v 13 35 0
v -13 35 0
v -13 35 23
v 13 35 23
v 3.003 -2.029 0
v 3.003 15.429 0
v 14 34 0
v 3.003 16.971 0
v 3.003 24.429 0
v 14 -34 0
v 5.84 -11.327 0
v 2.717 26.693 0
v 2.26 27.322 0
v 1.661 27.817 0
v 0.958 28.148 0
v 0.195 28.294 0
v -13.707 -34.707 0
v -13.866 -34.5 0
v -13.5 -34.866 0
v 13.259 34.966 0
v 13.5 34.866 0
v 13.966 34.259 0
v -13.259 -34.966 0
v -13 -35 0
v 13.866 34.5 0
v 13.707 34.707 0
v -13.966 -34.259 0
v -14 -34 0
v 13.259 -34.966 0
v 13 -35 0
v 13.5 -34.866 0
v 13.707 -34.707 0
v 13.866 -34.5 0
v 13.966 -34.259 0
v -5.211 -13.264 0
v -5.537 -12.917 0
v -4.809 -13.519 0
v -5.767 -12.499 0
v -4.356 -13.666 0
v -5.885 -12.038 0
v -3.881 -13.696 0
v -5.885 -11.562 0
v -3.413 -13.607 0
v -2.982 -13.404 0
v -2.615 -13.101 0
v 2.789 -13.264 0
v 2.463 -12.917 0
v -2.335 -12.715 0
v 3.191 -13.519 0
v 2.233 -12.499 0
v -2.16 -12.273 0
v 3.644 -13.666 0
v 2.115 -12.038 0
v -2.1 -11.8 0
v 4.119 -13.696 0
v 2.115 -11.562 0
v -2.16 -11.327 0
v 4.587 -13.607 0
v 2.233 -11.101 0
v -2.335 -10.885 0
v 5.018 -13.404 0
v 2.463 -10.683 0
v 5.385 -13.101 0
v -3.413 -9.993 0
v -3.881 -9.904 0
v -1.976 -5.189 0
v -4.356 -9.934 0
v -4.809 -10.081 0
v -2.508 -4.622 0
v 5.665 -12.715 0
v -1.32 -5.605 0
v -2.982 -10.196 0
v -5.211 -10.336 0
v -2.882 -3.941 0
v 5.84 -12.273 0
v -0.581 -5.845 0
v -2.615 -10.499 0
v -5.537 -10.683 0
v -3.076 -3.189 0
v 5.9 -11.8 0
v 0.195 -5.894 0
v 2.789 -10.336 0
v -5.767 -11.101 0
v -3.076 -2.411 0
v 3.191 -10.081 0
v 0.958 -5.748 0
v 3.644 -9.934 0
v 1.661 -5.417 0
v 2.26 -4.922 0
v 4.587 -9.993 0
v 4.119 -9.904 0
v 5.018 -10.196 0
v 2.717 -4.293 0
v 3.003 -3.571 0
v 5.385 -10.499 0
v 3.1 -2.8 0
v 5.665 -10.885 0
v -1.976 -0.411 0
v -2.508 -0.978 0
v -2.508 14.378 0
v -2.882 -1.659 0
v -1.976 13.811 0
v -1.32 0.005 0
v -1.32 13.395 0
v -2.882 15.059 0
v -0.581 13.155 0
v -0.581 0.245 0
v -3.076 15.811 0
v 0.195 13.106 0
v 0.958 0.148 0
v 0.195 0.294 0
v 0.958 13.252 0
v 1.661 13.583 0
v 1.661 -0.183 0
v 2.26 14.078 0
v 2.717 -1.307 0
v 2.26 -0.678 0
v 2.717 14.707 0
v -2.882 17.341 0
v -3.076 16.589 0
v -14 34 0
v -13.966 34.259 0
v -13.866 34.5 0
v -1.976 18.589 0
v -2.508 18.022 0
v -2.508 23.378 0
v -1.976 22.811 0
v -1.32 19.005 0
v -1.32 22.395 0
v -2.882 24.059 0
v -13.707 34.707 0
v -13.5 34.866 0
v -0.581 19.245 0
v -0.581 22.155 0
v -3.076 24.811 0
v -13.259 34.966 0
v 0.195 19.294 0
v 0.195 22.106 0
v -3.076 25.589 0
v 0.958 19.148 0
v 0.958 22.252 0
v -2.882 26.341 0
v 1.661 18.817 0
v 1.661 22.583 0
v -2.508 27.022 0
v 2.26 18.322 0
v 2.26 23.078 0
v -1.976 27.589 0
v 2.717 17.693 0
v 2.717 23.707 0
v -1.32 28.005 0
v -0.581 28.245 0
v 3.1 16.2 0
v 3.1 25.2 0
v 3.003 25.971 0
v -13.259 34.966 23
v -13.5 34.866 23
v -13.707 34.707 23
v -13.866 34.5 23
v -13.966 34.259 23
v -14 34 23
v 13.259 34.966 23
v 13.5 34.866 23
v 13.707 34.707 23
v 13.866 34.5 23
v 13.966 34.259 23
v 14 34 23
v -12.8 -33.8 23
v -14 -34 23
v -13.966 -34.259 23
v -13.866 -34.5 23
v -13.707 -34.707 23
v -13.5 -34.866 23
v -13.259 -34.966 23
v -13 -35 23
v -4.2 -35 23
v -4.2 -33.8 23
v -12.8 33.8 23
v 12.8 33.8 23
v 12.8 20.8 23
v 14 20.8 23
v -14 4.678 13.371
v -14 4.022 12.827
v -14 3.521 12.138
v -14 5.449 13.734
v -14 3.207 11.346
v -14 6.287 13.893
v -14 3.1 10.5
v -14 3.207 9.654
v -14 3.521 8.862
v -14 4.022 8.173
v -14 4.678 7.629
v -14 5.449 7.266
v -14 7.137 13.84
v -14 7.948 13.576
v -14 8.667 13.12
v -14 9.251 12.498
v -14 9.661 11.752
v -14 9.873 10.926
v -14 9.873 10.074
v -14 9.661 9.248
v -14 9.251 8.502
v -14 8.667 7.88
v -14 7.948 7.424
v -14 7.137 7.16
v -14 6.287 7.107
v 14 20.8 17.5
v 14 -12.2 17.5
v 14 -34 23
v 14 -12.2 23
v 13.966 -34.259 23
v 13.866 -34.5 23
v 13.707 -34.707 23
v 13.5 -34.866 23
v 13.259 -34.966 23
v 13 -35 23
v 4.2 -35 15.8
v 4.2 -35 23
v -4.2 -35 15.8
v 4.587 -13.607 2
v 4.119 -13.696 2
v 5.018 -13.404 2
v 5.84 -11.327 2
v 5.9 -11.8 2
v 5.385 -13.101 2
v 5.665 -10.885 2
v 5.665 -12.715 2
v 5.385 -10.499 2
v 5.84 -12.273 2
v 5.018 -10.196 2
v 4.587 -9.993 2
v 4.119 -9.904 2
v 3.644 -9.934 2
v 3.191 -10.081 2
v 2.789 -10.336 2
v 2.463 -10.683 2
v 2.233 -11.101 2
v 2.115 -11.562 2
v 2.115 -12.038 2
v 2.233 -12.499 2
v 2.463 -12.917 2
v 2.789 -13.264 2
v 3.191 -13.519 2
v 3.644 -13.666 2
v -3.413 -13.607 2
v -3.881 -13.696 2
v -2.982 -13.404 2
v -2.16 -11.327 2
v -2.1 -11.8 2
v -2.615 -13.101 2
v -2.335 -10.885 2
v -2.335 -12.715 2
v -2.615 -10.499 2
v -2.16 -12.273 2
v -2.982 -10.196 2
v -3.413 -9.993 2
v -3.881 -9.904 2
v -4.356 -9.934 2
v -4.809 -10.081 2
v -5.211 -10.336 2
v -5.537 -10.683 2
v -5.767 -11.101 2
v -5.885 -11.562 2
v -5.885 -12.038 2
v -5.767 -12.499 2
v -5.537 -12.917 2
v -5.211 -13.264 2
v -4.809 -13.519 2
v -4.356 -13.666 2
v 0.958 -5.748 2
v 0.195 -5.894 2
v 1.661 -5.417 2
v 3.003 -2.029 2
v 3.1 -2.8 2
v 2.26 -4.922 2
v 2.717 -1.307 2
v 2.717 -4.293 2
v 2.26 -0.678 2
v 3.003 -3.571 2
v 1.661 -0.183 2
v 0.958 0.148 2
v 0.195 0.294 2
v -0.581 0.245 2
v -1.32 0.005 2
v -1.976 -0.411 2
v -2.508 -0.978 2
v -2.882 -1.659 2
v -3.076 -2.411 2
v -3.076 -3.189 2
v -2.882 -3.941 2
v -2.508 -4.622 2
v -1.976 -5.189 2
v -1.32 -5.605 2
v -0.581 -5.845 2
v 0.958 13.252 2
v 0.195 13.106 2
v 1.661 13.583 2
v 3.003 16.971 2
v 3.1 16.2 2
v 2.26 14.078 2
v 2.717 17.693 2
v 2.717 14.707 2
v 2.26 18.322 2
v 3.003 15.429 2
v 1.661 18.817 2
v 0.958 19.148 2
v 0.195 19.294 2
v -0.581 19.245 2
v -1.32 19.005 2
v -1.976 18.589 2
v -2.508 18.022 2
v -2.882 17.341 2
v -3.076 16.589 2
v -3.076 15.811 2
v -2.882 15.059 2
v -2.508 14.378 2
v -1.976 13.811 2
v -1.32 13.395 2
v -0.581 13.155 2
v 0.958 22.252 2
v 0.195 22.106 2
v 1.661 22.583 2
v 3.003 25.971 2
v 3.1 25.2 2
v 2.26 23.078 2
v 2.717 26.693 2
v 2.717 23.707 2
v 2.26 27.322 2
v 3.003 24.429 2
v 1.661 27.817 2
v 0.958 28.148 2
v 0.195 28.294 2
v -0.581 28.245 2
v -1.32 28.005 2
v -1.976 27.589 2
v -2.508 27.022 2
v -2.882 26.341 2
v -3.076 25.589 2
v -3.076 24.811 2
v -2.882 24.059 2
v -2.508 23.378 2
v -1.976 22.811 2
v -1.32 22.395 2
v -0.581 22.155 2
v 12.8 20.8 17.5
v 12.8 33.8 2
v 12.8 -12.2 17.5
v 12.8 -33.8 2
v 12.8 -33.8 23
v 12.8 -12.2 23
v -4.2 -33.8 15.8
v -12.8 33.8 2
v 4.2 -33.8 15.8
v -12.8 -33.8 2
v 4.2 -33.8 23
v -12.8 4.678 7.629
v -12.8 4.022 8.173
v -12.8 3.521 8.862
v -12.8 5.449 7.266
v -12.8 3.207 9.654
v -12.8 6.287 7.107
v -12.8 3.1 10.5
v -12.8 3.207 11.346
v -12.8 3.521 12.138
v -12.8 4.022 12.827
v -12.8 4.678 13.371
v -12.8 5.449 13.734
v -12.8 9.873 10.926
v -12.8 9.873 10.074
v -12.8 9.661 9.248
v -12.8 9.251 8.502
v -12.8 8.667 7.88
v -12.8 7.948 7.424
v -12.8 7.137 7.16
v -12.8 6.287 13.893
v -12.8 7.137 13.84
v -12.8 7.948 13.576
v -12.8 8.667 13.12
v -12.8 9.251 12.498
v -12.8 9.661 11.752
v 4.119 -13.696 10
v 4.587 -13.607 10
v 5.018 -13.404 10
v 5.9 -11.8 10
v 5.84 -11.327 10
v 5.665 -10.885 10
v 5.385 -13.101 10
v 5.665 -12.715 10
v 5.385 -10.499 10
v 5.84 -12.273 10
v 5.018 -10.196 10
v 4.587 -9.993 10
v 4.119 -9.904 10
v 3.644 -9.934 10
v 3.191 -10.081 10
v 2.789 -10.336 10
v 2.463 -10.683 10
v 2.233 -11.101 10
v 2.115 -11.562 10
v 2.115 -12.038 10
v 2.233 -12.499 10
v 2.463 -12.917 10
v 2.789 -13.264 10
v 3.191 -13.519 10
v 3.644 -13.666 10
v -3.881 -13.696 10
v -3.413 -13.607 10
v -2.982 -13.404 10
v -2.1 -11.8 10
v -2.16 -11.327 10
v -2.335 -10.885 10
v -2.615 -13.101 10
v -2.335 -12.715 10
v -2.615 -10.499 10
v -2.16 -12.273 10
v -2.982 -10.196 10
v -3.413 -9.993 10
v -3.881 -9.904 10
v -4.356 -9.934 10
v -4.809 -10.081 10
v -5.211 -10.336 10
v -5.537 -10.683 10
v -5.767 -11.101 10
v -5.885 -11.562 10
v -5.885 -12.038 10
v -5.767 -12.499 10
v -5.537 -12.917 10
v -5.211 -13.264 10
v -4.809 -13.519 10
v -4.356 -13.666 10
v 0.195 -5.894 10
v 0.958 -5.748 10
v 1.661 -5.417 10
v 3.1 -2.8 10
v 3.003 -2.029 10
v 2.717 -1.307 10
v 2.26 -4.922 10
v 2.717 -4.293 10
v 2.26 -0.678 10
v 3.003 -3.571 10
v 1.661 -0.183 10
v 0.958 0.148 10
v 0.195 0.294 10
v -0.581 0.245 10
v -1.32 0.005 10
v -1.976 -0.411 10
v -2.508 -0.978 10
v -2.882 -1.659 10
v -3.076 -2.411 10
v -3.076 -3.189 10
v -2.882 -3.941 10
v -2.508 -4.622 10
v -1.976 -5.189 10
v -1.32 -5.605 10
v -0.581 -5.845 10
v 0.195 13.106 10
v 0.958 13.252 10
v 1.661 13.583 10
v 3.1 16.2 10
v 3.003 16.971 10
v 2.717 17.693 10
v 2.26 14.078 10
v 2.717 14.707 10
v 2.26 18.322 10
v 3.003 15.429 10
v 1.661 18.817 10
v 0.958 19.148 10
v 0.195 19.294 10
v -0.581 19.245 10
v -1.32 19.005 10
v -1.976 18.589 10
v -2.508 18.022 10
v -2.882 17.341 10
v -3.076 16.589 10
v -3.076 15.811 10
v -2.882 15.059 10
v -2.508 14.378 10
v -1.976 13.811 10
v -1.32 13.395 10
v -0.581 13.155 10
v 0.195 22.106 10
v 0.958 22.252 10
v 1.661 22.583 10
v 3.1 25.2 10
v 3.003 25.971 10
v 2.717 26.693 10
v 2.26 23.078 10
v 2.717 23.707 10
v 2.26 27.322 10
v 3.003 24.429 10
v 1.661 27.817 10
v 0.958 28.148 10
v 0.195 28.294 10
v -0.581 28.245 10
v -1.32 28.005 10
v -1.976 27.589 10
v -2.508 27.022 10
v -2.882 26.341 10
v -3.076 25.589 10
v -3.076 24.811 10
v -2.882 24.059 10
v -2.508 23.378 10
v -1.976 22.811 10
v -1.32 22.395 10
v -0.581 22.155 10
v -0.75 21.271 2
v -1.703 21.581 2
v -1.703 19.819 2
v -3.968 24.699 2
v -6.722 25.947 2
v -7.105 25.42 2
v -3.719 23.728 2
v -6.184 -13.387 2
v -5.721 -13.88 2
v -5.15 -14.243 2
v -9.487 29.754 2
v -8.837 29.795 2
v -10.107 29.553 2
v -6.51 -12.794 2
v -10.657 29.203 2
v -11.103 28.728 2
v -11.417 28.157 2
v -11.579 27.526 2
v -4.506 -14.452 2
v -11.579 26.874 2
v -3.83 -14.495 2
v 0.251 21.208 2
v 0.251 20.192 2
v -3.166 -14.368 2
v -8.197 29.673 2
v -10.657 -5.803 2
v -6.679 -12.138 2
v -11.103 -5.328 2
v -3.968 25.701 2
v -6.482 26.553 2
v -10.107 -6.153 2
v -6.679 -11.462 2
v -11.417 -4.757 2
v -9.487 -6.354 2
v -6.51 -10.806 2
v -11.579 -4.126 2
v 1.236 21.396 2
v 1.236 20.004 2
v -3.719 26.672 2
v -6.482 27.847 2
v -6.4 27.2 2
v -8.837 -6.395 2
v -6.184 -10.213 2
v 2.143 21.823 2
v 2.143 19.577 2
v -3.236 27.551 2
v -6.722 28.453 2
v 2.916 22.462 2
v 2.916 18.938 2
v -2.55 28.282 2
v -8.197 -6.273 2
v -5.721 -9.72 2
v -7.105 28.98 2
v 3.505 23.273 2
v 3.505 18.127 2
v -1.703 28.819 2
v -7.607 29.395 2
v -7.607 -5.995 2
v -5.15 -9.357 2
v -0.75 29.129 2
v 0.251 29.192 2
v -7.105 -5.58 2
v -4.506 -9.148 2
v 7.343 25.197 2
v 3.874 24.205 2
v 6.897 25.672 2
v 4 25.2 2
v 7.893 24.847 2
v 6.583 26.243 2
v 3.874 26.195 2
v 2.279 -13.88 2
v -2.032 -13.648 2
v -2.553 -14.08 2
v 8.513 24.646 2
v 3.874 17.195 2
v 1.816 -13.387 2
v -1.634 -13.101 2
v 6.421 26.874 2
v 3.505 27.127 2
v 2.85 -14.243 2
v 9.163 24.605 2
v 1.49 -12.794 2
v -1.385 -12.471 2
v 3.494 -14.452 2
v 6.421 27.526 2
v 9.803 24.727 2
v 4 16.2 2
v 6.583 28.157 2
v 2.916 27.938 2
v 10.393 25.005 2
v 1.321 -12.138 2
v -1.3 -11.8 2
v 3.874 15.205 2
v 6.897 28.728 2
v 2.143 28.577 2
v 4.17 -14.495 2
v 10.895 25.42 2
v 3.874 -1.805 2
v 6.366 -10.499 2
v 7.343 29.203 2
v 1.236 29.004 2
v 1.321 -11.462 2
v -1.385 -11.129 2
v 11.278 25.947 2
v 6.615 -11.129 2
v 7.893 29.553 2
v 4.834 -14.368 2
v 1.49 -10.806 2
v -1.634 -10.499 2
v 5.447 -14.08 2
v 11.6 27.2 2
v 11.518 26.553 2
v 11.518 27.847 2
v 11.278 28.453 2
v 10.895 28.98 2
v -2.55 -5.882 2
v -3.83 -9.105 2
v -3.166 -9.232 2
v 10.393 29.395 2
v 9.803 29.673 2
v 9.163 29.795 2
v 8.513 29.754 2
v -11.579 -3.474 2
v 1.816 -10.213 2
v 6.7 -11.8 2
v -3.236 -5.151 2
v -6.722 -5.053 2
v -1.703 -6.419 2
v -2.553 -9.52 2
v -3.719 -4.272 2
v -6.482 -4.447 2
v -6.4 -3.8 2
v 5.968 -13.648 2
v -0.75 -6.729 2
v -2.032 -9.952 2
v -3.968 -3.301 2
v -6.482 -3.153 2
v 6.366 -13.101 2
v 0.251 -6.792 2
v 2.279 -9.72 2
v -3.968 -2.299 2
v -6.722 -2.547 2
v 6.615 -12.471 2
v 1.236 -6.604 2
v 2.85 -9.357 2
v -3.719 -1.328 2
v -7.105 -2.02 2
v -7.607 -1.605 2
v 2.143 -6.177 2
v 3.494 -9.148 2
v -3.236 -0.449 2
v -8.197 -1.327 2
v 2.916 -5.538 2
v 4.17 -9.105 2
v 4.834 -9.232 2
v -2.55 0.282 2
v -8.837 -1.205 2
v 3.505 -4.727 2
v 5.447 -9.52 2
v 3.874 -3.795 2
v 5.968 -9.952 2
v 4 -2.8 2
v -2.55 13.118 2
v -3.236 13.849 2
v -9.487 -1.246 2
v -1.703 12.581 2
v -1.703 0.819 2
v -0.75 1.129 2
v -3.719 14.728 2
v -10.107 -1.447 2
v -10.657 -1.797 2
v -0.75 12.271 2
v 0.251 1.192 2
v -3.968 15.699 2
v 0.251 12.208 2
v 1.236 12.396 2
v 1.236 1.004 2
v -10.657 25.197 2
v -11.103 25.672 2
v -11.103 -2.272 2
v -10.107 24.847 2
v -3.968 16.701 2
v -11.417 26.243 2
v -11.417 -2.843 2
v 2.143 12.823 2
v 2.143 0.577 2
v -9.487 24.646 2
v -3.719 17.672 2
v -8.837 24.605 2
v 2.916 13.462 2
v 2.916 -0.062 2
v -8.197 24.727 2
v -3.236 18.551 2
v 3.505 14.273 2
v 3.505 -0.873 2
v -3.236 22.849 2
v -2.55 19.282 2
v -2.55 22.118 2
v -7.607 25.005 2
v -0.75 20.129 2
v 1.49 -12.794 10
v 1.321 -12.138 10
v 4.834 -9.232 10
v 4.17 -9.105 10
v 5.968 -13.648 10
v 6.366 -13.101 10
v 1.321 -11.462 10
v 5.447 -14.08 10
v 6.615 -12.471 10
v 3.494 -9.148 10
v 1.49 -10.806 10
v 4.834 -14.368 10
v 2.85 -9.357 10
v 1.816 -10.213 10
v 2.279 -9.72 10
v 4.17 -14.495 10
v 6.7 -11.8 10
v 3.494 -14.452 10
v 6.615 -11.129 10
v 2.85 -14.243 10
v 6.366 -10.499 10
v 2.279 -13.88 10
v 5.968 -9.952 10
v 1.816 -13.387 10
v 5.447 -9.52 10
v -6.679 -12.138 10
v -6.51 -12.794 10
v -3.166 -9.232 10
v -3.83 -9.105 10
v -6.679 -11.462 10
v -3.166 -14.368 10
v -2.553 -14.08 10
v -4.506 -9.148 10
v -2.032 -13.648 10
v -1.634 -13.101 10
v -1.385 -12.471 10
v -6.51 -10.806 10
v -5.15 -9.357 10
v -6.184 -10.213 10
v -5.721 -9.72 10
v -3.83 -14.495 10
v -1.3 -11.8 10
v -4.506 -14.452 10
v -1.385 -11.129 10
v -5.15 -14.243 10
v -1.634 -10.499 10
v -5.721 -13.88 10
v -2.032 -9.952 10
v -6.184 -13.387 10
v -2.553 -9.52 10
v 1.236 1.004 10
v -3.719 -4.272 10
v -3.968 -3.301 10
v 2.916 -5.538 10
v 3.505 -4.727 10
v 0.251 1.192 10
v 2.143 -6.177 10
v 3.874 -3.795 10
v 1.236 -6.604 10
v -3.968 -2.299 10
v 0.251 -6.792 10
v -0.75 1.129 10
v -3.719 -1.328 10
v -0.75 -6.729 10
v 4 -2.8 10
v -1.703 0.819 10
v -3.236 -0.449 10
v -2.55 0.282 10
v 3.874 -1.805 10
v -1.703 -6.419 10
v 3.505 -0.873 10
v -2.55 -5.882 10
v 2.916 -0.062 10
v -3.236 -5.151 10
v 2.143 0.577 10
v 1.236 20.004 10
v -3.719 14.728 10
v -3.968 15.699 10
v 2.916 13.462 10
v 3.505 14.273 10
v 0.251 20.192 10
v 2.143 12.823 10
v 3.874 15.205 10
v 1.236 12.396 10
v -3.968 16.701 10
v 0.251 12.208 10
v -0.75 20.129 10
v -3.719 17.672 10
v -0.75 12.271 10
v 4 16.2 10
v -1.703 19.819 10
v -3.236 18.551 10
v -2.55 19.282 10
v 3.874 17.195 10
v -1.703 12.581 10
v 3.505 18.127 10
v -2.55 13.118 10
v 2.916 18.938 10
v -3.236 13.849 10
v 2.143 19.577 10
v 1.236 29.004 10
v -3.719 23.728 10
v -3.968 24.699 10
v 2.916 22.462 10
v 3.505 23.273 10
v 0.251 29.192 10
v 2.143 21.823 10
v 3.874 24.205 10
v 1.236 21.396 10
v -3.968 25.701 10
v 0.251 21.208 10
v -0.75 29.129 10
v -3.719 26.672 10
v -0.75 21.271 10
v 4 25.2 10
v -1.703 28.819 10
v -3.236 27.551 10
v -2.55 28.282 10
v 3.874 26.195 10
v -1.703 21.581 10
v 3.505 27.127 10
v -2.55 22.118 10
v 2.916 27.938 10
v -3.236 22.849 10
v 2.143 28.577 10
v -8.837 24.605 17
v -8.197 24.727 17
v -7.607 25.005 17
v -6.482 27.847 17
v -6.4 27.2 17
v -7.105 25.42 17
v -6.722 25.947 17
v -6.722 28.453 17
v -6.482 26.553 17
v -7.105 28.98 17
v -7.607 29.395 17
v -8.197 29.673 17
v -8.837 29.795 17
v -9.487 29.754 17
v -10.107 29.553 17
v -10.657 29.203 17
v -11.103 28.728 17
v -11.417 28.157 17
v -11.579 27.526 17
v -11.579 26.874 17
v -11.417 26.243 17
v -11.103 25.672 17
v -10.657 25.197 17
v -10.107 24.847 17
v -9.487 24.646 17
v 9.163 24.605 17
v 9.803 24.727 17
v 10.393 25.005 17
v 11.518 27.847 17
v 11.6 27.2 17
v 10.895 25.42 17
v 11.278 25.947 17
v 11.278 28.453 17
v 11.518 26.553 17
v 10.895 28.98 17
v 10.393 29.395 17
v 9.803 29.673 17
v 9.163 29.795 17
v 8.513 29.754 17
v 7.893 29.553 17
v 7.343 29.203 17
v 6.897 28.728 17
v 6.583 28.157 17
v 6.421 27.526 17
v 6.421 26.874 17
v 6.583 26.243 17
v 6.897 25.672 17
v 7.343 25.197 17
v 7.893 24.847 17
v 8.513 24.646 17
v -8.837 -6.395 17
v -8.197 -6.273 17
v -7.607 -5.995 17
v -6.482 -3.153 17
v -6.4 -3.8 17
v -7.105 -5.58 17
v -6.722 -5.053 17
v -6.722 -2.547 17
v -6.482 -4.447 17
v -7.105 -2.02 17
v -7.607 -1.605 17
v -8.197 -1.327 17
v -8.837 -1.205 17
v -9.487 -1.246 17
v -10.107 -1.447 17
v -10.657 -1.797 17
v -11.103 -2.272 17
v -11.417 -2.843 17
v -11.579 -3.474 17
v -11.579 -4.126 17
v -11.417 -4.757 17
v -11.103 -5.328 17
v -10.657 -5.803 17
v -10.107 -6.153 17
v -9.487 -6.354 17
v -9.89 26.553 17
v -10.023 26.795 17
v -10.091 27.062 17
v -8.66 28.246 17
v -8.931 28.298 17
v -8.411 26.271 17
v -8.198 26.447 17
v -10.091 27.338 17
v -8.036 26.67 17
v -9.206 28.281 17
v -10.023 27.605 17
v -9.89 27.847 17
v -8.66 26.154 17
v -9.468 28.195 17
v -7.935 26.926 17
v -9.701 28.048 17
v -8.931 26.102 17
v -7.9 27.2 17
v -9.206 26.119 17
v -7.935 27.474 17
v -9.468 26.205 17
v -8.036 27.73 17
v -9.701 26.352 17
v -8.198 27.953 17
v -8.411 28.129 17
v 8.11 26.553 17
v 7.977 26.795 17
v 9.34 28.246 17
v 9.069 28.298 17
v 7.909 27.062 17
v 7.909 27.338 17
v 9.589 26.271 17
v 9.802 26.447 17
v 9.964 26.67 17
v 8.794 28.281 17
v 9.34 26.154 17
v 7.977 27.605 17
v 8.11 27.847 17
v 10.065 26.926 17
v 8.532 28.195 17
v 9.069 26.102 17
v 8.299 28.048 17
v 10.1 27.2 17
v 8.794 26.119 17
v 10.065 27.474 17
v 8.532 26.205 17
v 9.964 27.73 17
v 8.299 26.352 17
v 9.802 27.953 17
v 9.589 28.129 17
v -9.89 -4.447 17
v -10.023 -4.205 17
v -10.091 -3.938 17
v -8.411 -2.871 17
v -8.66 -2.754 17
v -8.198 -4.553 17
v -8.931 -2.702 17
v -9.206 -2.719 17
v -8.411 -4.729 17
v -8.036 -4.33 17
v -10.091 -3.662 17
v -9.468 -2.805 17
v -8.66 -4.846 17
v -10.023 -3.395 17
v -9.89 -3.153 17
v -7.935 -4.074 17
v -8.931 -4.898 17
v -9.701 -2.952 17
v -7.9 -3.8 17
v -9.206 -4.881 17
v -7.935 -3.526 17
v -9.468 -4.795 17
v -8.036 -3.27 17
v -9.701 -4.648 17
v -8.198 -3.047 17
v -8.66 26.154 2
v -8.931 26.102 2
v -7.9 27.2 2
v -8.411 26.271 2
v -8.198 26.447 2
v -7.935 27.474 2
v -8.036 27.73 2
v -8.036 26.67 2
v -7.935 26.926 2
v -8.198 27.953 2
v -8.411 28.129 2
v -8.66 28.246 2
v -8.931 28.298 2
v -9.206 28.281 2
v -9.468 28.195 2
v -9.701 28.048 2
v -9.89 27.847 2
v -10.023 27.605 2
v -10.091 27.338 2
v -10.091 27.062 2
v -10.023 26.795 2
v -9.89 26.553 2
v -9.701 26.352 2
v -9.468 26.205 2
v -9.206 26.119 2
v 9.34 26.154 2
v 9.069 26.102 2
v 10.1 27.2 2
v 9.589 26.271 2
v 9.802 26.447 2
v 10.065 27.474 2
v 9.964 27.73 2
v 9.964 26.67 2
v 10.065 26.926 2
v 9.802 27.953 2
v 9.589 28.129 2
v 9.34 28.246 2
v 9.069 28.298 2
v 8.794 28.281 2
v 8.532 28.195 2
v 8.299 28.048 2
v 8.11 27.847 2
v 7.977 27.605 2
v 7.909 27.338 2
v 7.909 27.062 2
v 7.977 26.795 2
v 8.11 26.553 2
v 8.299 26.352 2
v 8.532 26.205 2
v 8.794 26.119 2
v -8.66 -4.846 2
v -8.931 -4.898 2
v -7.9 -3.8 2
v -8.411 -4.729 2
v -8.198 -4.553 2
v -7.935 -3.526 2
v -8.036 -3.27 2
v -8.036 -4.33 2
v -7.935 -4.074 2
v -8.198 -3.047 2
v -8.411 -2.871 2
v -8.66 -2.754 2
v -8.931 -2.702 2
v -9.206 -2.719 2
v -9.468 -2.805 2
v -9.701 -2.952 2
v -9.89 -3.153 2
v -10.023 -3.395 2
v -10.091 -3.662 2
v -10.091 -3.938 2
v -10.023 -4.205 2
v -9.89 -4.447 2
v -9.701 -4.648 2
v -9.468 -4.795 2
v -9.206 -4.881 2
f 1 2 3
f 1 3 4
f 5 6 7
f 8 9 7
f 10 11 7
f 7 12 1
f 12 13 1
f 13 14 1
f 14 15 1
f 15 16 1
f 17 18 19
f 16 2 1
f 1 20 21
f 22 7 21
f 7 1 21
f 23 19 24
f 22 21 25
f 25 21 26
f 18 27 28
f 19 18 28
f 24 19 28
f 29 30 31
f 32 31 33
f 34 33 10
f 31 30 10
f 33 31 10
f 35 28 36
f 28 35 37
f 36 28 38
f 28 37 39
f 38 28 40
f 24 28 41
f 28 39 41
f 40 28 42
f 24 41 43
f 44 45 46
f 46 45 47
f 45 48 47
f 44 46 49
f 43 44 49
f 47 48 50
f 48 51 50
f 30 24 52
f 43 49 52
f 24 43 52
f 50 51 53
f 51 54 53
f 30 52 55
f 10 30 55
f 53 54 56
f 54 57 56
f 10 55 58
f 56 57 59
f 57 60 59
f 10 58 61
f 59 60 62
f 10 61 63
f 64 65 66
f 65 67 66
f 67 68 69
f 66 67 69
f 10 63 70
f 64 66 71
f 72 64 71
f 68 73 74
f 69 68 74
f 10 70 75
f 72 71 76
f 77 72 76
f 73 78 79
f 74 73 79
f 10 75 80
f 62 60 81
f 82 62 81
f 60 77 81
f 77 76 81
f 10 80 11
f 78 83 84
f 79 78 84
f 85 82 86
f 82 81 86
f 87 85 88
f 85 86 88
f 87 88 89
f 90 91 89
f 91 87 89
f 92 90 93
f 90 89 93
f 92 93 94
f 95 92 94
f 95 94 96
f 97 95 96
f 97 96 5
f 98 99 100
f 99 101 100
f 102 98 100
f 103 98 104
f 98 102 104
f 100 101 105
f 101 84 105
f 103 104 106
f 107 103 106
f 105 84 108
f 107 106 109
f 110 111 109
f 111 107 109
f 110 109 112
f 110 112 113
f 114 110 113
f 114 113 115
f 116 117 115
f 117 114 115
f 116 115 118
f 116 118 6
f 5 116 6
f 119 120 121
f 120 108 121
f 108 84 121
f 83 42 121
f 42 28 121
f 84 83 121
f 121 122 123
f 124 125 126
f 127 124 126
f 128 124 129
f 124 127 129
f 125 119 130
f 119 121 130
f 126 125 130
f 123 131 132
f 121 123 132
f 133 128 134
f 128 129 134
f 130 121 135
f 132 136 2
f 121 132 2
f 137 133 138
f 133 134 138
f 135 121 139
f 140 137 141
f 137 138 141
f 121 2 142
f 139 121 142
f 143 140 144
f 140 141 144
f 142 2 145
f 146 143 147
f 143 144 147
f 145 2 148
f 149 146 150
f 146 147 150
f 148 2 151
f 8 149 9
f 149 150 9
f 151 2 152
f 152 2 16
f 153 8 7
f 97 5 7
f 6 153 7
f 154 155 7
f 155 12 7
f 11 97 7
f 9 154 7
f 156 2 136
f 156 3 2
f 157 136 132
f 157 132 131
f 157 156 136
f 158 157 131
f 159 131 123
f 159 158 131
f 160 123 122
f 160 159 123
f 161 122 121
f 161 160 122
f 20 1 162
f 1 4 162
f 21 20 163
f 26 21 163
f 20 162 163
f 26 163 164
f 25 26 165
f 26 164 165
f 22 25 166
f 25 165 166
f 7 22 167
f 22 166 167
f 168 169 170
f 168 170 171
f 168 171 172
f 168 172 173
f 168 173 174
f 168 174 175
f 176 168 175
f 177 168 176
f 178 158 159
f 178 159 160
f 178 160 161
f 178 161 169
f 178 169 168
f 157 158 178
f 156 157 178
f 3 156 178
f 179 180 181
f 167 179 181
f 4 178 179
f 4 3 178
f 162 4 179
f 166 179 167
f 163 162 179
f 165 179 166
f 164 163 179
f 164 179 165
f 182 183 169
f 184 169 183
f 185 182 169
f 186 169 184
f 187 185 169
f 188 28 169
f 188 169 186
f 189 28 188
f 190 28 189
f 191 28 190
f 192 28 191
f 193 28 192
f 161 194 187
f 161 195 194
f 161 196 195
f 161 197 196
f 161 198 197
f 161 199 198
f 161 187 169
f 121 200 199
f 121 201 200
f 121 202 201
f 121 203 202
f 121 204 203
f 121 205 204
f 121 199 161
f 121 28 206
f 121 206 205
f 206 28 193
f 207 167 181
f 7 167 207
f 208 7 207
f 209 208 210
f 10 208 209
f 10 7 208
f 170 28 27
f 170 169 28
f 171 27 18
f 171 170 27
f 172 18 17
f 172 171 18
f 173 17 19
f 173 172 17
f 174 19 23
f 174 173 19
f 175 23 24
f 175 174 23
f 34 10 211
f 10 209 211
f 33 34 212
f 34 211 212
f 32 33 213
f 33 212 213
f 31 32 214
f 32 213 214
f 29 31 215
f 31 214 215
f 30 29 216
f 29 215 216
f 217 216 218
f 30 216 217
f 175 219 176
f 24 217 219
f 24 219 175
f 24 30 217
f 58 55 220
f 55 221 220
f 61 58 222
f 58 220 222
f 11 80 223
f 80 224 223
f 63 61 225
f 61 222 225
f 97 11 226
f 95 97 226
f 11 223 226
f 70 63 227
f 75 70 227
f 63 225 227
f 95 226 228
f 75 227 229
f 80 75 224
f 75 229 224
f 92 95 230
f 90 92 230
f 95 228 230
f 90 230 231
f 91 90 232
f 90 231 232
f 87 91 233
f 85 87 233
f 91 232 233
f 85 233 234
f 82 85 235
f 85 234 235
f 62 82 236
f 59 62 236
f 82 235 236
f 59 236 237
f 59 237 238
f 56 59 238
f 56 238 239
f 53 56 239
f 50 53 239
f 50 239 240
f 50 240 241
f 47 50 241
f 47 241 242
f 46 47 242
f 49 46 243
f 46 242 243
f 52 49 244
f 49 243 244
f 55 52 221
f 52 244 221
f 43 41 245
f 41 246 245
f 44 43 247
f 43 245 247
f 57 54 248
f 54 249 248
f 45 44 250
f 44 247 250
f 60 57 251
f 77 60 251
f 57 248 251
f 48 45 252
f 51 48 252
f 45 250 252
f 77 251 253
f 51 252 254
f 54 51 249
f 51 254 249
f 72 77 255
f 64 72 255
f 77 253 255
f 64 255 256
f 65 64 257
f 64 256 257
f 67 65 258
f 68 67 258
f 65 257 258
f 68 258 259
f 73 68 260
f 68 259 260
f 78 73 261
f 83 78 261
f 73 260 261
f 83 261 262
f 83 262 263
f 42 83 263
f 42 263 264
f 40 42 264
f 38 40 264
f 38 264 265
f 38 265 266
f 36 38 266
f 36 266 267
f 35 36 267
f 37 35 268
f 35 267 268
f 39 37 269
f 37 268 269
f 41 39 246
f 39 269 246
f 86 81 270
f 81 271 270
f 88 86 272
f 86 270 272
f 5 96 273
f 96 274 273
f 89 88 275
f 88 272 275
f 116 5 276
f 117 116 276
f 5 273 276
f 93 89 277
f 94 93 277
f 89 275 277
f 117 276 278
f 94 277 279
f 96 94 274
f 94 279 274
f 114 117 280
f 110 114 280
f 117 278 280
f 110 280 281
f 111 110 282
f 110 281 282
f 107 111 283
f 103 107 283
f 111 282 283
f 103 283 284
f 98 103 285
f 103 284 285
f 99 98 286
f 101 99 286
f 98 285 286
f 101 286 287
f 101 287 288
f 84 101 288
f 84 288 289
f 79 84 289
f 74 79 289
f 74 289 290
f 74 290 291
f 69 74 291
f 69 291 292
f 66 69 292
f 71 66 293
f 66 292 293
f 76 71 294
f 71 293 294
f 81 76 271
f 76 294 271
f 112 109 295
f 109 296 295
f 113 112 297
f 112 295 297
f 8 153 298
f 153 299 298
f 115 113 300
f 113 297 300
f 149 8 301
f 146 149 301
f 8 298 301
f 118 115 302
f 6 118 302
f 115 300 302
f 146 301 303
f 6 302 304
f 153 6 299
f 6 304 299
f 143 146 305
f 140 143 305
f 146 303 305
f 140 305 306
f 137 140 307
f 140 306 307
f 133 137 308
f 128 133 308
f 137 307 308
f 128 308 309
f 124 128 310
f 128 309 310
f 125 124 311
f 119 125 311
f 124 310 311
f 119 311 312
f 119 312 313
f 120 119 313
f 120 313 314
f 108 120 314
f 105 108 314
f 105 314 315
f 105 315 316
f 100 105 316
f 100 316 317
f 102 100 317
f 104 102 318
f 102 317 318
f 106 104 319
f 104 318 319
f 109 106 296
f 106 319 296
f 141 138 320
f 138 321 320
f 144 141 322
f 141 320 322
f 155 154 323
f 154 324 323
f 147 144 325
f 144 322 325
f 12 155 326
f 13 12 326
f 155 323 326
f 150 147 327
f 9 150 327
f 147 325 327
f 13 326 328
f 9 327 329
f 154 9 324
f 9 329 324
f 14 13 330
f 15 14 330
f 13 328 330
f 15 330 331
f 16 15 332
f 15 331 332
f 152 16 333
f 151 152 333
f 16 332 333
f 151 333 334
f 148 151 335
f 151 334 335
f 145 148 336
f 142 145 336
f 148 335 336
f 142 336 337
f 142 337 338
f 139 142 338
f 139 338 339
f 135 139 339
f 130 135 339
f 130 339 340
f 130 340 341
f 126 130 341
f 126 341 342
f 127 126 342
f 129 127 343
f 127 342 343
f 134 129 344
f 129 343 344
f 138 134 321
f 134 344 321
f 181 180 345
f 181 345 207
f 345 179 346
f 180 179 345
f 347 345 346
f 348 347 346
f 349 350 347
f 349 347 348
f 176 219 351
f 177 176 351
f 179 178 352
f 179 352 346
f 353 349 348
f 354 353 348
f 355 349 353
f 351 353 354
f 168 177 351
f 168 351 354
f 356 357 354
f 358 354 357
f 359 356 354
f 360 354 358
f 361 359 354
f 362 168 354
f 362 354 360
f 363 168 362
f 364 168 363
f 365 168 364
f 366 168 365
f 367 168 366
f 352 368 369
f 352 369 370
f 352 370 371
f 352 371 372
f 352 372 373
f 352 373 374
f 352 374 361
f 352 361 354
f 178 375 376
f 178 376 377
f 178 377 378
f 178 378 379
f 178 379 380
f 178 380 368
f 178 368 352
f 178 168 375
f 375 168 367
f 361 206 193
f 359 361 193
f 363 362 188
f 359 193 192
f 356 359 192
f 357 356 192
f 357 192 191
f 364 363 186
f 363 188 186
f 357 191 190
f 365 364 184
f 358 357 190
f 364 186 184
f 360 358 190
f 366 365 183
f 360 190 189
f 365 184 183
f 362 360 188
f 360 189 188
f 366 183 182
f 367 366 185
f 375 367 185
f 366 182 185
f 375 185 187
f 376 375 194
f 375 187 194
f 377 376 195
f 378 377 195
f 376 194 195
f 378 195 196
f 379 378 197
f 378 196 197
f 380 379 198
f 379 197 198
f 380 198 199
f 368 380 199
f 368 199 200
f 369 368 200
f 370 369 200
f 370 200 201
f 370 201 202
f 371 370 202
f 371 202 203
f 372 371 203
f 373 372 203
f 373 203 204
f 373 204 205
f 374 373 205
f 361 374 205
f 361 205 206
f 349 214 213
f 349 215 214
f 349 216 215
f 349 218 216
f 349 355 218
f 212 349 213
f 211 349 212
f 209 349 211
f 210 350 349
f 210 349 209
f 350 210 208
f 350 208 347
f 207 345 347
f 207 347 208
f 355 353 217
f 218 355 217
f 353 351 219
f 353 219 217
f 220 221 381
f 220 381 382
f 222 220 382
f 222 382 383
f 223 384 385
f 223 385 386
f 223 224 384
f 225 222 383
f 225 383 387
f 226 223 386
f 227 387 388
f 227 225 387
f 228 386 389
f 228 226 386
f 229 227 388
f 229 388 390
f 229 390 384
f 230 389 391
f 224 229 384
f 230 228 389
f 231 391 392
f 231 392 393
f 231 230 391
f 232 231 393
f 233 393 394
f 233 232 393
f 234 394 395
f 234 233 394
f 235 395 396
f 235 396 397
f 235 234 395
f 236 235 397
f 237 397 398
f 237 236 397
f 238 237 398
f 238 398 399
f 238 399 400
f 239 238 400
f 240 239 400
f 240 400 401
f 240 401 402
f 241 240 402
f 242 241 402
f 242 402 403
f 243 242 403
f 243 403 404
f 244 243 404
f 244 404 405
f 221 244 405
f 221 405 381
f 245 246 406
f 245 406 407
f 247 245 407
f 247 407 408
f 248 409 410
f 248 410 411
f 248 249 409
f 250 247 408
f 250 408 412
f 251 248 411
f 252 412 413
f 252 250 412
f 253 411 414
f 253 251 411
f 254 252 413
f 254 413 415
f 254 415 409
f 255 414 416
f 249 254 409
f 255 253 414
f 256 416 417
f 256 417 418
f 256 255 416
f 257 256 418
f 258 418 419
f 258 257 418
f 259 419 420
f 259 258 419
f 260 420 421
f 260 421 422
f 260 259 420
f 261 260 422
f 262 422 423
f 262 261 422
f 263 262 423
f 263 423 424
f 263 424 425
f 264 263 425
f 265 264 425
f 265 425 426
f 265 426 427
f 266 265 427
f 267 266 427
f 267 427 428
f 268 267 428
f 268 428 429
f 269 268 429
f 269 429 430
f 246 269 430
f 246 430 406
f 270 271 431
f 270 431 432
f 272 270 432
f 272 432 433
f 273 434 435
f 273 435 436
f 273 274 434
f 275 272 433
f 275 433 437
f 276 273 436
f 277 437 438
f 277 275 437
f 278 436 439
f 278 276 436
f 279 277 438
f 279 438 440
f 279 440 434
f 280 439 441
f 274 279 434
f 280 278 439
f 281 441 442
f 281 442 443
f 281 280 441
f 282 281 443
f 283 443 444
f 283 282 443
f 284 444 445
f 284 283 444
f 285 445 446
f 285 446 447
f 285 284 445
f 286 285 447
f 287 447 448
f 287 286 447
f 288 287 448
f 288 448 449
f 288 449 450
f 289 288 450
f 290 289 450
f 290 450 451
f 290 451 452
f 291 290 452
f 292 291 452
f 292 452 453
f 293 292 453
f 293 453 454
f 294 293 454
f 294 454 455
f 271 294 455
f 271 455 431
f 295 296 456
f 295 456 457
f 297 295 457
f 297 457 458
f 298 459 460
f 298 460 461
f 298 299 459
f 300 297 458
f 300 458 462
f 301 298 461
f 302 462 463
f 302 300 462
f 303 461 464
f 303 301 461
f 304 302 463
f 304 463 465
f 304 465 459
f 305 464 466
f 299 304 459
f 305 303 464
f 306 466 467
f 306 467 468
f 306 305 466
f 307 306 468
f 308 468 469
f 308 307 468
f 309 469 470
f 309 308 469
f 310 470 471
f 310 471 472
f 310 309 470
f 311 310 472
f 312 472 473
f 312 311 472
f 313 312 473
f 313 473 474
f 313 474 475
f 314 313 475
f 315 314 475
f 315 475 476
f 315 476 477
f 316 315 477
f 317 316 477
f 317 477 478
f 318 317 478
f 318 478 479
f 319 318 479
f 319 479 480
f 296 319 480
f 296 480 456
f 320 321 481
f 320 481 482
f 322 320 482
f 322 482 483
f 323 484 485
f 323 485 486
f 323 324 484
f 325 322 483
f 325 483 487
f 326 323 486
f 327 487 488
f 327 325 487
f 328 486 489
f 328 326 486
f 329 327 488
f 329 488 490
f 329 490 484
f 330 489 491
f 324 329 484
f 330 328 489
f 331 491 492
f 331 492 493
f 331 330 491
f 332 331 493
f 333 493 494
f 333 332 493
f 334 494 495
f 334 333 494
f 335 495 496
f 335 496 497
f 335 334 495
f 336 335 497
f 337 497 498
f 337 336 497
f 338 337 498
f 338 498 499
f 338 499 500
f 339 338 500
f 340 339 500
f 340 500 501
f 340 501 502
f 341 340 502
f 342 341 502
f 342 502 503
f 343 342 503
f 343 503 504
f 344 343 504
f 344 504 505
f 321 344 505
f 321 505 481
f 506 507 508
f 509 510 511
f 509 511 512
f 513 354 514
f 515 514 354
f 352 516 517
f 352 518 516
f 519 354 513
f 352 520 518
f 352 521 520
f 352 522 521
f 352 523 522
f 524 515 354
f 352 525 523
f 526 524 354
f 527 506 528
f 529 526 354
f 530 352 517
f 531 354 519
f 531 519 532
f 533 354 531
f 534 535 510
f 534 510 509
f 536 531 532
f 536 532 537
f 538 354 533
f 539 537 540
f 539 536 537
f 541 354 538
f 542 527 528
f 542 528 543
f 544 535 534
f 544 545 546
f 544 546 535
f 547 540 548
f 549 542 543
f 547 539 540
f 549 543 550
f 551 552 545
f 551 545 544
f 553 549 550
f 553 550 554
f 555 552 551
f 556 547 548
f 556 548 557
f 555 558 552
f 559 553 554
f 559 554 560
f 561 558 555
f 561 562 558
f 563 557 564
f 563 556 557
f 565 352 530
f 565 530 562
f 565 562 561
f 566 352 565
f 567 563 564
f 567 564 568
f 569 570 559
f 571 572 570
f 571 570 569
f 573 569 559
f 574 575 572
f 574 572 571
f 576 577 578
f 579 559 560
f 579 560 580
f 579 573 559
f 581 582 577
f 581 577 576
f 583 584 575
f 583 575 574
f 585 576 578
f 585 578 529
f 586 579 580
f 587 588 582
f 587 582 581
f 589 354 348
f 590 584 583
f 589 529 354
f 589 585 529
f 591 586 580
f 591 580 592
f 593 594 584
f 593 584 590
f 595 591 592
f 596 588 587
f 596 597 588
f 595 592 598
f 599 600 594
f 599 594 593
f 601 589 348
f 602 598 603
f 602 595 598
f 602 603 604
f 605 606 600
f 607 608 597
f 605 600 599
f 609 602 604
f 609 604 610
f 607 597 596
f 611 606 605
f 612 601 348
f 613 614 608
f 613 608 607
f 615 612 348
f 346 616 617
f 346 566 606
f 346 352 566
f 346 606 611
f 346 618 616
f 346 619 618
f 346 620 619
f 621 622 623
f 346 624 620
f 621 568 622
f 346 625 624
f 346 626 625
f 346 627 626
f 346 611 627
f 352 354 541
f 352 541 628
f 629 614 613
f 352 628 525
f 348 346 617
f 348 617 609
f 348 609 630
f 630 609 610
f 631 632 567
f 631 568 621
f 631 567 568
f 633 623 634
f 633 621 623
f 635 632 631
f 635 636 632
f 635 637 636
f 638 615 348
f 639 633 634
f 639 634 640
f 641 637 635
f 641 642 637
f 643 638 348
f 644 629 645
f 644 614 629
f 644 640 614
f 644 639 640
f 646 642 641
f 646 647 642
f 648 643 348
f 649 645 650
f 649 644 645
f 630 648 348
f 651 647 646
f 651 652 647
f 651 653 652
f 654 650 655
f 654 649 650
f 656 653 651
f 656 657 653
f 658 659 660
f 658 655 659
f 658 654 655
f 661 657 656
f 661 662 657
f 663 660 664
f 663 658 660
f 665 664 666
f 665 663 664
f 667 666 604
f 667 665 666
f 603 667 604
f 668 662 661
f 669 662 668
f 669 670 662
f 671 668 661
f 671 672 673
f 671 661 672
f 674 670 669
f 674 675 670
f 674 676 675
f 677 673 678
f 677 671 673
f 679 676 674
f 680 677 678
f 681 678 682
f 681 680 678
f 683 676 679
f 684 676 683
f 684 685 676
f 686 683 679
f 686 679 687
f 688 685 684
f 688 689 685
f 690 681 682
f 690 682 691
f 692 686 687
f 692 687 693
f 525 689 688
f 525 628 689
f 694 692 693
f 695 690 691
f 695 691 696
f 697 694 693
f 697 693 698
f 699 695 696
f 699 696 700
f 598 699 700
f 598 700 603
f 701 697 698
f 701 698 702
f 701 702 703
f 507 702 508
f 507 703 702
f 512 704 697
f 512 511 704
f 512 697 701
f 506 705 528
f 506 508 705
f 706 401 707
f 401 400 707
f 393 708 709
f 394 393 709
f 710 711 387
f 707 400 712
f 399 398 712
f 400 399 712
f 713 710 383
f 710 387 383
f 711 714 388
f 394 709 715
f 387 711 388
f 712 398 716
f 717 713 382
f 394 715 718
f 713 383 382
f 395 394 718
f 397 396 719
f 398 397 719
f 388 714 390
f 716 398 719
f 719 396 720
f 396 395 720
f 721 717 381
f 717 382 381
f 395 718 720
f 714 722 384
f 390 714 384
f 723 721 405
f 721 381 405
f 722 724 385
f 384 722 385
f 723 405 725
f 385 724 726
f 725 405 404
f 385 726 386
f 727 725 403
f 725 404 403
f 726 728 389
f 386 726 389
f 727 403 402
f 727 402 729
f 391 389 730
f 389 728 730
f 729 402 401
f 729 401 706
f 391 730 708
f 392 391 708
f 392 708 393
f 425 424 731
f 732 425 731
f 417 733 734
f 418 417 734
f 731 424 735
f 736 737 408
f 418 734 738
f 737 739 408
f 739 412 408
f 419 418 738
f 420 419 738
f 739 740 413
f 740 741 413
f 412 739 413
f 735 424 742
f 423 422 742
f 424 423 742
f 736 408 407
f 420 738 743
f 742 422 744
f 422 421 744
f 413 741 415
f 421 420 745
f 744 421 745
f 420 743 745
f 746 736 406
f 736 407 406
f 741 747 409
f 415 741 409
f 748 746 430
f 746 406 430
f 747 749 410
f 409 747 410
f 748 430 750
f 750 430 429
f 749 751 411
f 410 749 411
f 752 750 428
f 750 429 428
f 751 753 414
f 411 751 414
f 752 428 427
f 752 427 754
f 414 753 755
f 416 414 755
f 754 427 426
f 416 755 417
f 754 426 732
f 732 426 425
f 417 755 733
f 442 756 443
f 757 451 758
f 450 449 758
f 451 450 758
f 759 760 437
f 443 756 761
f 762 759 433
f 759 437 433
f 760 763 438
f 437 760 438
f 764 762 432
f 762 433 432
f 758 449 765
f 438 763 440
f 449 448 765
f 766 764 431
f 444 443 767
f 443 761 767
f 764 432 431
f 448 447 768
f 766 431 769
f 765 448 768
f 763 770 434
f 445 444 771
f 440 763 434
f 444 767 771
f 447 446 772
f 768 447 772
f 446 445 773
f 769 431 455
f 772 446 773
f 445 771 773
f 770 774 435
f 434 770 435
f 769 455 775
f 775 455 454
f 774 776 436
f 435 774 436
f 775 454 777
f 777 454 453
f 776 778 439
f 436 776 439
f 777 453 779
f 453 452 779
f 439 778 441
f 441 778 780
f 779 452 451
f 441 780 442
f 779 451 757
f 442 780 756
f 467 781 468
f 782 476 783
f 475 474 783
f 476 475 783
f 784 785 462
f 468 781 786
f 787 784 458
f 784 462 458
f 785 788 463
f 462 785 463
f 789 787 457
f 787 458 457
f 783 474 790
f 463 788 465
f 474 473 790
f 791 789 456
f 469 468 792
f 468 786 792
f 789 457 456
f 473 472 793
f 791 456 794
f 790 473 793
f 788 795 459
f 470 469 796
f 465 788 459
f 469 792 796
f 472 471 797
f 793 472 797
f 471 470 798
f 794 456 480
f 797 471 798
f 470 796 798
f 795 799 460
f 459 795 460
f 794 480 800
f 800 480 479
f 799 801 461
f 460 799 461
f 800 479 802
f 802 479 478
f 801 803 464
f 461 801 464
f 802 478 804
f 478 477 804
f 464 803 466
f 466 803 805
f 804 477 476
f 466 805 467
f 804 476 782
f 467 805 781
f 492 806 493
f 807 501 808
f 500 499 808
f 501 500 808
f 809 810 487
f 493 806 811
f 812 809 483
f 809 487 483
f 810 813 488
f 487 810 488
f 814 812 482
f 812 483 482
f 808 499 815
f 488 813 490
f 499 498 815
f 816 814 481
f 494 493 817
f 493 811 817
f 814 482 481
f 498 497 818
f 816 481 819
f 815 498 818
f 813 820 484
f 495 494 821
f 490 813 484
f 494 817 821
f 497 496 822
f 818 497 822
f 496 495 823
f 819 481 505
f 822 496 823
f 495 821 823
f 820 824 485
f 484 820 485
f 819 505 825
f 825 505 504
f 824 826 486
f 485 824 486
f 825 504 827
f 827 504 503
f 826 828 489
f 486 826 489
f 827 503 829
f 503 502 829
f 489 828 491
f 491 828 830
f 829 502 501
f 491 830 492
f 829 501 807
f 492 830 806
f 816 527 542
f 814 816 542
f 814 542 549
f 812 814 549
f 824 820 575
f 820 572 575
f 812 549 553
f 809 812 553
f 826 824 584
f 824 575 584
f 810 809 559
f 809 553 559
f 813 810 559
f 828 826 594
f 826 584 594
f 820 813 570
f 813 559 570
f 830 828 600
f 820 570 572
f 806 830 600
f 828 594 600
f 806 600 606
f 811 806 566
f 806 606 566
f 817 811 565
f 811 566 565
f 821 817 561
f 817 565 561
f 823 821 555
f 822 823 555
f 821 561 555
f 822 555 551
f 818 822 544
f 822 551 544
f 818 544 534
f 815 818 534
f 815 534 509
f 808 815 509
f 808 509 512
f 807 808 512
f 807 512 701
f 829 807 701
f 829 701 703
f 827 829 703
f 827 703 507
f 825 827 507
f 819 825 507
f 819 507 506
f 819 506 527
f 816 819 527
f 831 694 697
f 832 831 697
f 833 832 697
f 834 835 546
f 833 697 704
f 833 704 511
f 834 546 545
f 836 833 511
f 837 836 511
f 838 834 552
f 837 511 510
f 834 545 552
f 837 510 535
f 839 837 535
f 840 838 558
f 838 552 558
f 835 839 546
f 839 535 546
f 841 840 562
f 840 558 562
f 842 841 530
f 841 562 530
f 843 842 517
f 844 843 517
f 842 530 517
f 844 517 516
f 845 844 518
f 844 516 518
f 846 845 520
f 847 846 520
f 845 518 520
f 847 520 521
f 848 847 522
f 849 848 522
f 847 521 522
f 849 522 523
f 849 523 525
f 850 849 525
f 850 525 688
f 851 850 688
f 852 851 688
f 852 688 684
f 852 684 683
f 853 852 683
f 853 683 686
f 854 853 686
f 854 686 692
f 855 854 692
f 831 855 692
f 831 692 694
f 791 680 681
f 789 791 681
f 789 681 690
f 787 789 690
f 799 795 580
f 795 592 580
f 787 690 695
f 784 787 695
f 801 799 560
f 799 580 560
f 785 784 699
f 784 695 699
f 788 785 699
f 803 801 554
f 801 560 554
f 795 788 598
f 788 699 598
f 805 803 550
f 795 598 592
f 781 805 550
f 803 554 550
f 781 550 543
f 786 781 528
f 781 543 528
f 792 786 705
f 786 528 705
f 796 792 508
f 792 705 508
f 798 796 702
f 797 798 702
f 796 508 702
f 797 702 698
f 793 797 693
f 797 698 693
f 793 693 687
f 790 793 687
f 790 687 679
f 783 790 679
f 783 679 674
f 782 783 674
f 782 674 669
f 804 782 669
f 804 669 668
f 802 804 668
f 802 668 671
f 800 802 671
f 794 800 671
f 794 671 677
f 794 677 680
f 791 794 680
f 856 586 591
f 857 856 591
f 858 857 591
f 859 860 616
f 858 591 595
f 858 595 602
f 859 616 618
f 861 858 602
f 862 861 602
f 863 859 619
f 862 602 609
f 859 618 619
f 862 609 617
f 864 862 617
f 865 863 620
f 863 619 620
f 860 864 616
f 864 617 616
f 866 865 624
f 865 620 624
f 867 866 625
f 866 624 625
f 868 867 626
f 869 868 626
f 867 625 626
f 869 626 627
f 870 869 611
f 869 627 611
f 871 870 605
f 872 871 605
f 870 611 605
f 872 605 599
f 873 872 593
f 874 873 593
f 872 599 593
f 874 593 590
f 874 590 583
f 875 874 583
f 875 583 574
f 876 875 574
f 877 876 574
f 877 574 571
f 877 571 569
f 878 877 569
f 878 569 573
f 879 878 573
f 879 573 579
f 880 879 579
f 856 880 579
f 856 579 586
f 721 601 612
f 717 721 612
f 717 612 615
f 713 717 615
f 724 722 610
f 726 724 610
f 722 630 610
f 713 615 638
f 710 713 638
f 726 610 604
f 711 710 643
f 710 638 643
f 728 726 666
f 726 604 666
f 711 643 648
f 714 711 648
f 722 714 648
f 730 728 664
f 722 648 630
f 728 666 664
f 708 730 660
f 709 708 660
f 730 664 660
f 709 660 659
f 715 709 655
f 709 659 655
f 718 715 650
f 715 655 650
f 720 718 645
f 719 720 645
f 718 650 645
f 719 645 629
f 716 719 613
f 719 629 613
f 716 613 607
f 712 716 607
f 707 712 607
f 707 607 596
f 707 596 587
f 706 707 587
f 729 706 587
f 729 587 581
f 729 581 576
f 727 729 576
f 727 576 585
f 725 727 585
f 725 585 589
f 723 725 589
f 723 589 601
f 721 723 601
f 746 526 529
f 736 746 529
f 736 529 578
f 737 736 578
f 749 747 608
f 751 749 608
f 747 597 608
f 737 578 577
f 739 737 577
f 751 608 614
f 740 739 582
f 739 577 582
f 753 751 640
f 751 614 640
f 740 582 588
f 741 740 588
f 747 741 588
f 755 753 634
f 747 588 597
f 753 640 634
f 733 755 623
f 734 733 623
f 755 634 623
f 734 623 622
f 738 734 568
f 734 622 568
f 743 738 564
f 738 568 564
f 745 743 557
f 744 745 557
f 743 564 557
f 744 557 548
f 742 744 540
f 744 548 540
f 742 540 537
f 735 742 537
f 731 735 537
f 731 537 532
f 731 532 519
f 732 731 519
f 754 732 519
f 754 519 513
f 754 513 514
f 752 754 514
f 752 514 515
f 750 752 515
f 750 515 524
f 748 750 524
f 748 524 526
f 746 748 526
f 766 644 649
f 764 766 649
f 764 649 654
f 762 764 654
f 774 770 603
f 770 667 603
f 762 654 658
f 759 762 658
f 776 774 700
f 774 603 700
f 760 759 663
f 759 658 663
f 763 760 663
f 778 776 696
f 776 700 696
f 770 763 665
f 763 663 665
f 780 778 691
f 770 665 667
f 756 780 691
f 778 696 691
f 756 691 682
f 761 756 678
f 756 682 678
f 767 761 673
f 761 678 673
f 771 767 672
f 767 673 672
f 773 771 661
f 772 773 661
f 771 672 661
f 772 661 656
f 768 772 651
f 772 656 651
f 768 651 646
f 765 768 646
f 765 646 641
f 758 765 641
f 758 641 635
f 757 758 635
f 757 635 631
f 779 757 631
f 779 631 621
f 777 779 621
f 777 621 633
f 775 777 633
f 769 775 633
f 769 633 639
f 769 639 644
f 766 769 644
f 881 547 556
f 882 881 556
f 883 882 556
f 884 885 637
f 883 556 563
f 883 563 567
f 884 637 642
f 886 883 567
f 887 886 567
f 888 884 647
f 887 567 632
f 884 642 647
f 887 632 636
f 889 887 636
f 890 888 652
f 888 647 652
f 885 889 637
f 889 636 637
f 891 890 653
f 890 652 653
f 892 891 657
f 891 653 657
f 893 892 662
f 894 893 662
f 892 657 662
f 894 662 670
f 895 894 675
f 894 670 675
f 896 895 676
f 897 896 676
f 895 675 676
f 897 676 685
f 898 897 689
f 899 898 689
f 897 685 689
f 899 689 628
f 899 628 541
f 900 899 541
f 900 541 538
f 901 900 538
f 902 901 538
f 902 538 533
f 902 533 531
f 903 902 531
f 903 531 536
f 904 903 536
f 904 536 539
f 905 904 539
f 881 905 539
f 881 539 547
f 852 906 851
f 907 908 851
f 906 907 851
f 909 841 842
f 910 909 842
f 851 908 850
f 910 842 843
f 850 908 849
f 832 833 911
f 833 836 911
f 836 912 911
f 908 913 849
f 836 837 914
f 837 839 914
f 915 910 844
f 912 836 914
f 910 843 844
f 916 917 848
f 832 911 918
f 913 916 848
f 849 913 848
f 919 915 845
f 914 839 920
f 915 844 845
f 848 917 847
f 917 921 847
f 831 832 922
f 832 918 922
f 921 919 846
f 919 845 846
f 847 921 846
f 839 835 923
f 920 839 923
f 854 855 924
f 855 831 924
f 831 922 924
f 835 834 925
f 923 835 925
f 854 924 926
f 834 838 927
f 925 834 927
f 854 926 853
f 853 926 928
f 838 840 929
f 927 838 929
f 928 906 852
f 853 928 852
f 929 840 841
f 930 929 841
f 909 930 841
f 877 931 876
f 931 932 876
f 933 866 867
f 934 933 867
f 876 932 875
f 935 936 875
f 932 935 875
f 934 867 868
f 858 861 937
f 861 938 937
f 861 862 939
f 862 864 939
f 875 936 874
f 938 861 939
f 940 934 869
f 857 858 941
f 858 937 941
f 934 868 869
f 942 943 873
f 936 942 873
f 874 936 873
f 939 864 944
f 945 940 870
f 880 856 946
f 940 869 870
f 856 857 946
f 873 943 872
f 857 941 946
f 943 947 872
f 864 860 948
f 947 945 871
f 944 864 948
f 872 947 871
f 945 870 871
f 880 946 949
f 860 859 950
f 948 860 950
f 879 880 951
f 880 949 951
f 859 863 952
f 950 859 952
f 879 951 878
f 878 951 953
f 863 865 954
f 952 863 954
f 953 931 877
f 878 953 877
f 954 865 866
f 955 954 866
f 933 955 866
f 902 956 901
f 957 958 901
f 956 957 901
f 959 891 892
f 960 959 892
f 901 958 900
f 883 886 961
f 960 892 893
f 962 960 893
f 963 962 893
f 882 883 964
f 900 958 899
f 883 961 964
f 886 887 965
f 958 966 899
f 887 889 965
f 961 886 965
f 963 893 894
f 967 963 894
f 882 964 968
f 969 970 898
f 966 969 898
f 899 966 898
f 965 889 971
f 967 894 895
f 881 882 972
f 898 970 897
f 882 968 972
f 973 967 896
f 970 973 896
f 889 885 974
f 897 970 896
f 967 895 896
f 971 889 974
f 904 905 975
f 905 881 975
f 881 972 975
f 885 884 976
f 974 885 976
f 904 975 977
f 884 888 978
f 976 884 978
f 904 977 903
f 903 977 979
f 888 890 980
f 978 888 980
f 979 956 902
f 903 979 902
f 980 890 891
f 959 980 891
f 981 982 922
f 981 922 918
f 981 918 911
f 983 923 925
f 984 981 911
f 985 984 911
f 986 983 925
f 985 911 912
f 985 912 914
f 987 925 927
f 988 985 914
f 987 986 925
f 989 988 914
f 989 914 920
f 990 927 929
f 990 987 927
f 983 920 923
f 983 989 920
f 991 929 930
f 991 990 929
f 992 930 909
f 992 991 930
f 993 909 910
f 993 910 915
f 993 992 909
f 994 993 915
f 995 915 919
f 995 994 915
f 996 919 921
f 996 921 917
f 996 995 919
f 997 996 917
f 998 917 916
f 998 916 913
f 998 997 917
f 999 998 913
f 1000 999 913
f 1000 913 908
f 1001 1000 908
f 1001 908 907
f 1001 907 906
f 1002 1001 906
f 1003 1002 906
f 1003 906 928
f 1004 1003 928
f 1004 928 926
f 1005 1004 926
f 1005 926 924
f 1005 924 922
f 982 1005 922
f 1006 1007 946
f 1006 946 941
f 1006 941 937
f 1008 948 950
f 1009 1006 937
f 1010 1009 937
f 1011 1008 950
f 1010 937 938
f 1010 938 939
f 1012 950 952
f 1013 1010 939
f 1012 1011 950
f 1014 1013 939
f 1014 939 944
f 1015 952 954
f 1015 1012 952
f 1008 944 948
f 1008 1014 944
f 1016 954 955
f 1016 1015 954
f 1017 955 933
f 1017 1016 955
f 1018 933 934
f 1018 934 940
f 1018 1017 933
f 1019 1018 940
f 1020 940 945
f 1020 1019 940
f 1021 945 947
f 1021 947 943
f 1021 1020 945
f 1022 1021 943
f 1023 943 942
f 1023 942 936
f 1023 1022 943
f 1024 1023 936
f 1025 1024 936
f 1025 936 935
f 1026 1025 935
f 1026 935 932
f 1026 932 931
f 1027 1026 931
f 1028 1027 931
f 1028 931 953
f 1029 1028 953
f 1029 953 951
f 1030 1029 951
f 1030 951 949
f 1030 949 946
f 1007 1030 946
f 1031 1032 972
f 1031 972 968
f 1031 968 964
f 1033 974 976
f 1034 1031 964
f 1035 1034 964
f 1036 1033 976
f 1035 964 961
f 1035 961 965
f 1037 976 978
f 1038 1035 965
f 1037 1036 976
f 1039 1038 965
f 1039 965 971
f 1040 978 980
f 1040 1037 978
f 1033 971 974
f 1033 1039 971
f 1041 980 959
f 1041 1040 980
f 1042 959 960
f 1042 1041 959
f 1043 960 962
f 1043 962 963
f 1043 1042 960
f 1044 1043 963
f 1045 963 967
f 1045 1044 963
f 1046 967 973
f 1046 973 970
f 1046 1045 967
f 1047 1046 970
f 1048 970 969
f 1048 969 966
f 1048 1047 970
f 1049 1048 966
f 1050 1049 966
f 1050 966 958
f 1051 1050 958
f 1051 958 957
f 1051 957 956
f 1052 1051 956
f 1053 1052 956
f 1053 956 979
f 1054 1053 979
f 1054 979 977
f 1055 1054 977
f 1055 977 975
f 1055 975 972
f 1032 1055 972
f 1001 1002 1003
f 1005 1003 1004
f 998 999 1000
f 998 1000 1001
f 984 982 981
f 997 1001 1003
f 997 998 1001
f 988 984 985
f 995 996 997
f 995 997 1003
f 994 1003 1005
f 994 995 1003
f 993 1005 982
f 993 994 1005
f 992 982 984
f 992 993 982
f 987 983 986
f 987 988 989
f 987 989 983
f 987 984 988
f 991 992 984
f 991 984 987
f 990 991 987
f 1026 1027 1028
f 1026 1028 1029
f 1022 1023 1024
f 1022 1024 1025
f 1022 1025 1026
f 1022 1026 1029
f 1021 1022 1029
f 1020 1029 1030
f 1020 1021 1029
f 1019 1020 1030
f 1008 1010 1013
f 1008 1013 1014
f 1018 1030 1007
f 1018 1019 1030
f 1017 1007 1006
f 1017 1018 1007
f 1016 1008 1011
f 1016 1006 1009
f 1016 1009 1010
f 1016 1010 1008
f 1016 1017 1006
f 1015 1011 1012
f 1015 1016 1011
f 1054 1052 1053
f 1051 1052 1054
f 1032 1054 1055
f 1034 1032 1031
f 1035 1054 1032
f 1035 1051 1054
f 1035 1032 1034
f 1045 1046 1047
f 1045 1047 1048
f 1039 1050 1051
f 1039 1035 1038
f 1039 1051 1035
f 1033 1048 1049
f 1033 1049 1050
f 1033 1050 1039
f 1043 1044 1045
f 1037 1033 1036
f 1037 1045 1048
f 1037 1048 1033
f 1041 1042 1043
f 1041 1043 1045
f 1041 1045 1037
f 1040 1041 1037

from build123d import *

# Parameters (mm, degrees)
SKETCH_W        = 28
SKETCH_H        = 70
PAD_DEPTH       = 23
SKETCH001_W     = 25.6
SKETCH001_H     = 67.6
POCKET_DEPTH    = 21
SKETCH002_W     = 1.2
SKETCH002_H     = 33
POCKET001_DEPTH = 5.5
SKETCH003_R     = 2.6
SKETCH003_R_2   = 1.1
PAD001_DEPTH    = 15
SKETCH004_R     = 3.1
SKETCH004_R_2   = 1.9
POCKET002_DEPTH = 2
SKETCH005_R     = 4
SKETCH005_R_2   = 3.1
SKETCH005_R_3   = 2.7
SKETCH005_R_4   = 1.9
PAD002_DEPTH    = 8
SKETCH006_W     = 8.4
SKETCH006_H     = 1.2
POCKET003_DEPTH = 7.2
SKETCH007_R     = 3.4
POCKET004_DEPTH = 2
FILLET_R        = 1


with BuildPart() as part:
    # Sketch → Pad (new body)
    with BuildSketch(Plane.XY):
        Rectangle(SKETCH_W, SKETCH_H)
    extrude(amount=PAD_DEPTH)

    # Sketch001 → Pocket (cut)
    with BuildSketch(Plane.XY.offset(23)):
        Rectangle(SKETCH001_W, SKETCH001_H)
    extrude(amount=-POCKET_DEPTH, mode=Mode.SUBTRACT)

    # Sketch002 → Pocket001 (cut)
    with BuildSketch(Plane.XY.offset(23)):
        with Locations((13.4, 4.3)):
            Rectangle(SKETCH002_W, SKETCH002_H)
    extrude(amount=-POCKET001_DEPTH, mode=Mode.SUBTRACT)

    # Sketch003 → Pad001 (new body)
    with BuildSketch(Plane.XY.offset(2)):
        with Locations((-9, -3.8)):
            Circle(SKETCH003_R)
        with Locations((-9, -3.8)):
            Circle(SKETCH003_R_2, mode=Mode.SUBTRACT)
        with Locations((-9, 27.2)):
            Circle(SKETCH003_R)
        with Locations((-9, 27.2)):
            Circle(SKETCH003_R_2, mode=Mode.SUBTRACT)
        with Locations((9, 27.2)):
            Circle(SKETCH003_R)
        with Locations((9, 27.2)):
            Circle(SKETCH003_R_2, mode=Mode.SUBTRACT)
    extrude(amount=PAD001_DEPTH)

    # Sketch004 → Pocket002 (cut)
    with BuildSketch(Plane.XY.offset(2)):
        with Locations((0, 25.2)):
            Circle(SKETCH004_R)
        with Locations((0, 16.2)):
            Circle(SKETCH004_R)
        with Locations((0, -2.8)):
            Circle(SKETCH004_R)
        with Locations((-4, -11.8)):
            Circle(SKETCH004_R_2)
        with Locations((4, -11.8)):
            Circle(SKETCH004_R_2)
    extrude(amount=-POCKET002_DEPTH, mode=Mode.SUBTRACT)

    # Sketch005 → Pad002 (new body)
    with BuildSketch(Plane.XY.offset(2)):
        with Locations((0, 25.2)):
            Circle(SKETCH005_R)
        with Locations((0, 25.2)):
            Circle(SKETCH005_R_2, mode=Mode.SUBTRACT)
        with Locations((0, 16.2)):
            Circle(SKETCH005_R)
        with Locations((0, 16.2)):
            Circle(SKETCH005_R_2, mode=Mode.SUBTRACT)
        with Locations((0, -2.8)):
            Circle(SKETCH005_R)
        with Locations((0, -2.8)):
            Circle(SKETCH005_R_2, mode=Mode.SUBTRACT)
        with Locations((-4, -11.8)):
            Circle(SKETCH005_R_3)
        with Locations((-4, -11.8)):
            Circle(SKETCH005_R_4, mode=Mode.SUBTRACT)
        with Locations((4, -11.8)):
            Circle(SKETCH005_R_3)
        with Locations((4, -11.8)):
            Circle(SKETCH005_R_4, mode=Mode.SUBTRACT)
    extrude(amount=PAD002_DEPTH)

    # Sketch006 → Pocket003 (cut)
    with BuildSketch(Plane.XY.offset(23)):
        with Locations((0, -34.4)):
            Rectangle(SKETCH006_W, SKETCH006_H)
    extrude(amount=-POCKET003_DEPTH, mode=Mode.SUBTRACT)

    # Sketch007 → Pocket004 (cut)
    with BuildSketch(Plane(origin=(-14, 0, 0), x_dir=(0, -1, 0), z_dir=(-1, 0, 0))):
        with Locations((-6.5, 10.5)):
            Circle(SKETCH007_R)
    extrude(amount=-POCKET004_DEPTH, mode=Mode.SUBTRACT)

    # Fillet
    fillet_edges = [part.edges().sort_by_distance(p)[0] for p in [
        (-14, 35, 11.5),
        (-14, -35, 11.5),
        (14, -35, 11.5),
        (14, 35, 11.5),
    ]]
    fillet(fillet_edges, radius=FILLET_R)


solid = part.part
